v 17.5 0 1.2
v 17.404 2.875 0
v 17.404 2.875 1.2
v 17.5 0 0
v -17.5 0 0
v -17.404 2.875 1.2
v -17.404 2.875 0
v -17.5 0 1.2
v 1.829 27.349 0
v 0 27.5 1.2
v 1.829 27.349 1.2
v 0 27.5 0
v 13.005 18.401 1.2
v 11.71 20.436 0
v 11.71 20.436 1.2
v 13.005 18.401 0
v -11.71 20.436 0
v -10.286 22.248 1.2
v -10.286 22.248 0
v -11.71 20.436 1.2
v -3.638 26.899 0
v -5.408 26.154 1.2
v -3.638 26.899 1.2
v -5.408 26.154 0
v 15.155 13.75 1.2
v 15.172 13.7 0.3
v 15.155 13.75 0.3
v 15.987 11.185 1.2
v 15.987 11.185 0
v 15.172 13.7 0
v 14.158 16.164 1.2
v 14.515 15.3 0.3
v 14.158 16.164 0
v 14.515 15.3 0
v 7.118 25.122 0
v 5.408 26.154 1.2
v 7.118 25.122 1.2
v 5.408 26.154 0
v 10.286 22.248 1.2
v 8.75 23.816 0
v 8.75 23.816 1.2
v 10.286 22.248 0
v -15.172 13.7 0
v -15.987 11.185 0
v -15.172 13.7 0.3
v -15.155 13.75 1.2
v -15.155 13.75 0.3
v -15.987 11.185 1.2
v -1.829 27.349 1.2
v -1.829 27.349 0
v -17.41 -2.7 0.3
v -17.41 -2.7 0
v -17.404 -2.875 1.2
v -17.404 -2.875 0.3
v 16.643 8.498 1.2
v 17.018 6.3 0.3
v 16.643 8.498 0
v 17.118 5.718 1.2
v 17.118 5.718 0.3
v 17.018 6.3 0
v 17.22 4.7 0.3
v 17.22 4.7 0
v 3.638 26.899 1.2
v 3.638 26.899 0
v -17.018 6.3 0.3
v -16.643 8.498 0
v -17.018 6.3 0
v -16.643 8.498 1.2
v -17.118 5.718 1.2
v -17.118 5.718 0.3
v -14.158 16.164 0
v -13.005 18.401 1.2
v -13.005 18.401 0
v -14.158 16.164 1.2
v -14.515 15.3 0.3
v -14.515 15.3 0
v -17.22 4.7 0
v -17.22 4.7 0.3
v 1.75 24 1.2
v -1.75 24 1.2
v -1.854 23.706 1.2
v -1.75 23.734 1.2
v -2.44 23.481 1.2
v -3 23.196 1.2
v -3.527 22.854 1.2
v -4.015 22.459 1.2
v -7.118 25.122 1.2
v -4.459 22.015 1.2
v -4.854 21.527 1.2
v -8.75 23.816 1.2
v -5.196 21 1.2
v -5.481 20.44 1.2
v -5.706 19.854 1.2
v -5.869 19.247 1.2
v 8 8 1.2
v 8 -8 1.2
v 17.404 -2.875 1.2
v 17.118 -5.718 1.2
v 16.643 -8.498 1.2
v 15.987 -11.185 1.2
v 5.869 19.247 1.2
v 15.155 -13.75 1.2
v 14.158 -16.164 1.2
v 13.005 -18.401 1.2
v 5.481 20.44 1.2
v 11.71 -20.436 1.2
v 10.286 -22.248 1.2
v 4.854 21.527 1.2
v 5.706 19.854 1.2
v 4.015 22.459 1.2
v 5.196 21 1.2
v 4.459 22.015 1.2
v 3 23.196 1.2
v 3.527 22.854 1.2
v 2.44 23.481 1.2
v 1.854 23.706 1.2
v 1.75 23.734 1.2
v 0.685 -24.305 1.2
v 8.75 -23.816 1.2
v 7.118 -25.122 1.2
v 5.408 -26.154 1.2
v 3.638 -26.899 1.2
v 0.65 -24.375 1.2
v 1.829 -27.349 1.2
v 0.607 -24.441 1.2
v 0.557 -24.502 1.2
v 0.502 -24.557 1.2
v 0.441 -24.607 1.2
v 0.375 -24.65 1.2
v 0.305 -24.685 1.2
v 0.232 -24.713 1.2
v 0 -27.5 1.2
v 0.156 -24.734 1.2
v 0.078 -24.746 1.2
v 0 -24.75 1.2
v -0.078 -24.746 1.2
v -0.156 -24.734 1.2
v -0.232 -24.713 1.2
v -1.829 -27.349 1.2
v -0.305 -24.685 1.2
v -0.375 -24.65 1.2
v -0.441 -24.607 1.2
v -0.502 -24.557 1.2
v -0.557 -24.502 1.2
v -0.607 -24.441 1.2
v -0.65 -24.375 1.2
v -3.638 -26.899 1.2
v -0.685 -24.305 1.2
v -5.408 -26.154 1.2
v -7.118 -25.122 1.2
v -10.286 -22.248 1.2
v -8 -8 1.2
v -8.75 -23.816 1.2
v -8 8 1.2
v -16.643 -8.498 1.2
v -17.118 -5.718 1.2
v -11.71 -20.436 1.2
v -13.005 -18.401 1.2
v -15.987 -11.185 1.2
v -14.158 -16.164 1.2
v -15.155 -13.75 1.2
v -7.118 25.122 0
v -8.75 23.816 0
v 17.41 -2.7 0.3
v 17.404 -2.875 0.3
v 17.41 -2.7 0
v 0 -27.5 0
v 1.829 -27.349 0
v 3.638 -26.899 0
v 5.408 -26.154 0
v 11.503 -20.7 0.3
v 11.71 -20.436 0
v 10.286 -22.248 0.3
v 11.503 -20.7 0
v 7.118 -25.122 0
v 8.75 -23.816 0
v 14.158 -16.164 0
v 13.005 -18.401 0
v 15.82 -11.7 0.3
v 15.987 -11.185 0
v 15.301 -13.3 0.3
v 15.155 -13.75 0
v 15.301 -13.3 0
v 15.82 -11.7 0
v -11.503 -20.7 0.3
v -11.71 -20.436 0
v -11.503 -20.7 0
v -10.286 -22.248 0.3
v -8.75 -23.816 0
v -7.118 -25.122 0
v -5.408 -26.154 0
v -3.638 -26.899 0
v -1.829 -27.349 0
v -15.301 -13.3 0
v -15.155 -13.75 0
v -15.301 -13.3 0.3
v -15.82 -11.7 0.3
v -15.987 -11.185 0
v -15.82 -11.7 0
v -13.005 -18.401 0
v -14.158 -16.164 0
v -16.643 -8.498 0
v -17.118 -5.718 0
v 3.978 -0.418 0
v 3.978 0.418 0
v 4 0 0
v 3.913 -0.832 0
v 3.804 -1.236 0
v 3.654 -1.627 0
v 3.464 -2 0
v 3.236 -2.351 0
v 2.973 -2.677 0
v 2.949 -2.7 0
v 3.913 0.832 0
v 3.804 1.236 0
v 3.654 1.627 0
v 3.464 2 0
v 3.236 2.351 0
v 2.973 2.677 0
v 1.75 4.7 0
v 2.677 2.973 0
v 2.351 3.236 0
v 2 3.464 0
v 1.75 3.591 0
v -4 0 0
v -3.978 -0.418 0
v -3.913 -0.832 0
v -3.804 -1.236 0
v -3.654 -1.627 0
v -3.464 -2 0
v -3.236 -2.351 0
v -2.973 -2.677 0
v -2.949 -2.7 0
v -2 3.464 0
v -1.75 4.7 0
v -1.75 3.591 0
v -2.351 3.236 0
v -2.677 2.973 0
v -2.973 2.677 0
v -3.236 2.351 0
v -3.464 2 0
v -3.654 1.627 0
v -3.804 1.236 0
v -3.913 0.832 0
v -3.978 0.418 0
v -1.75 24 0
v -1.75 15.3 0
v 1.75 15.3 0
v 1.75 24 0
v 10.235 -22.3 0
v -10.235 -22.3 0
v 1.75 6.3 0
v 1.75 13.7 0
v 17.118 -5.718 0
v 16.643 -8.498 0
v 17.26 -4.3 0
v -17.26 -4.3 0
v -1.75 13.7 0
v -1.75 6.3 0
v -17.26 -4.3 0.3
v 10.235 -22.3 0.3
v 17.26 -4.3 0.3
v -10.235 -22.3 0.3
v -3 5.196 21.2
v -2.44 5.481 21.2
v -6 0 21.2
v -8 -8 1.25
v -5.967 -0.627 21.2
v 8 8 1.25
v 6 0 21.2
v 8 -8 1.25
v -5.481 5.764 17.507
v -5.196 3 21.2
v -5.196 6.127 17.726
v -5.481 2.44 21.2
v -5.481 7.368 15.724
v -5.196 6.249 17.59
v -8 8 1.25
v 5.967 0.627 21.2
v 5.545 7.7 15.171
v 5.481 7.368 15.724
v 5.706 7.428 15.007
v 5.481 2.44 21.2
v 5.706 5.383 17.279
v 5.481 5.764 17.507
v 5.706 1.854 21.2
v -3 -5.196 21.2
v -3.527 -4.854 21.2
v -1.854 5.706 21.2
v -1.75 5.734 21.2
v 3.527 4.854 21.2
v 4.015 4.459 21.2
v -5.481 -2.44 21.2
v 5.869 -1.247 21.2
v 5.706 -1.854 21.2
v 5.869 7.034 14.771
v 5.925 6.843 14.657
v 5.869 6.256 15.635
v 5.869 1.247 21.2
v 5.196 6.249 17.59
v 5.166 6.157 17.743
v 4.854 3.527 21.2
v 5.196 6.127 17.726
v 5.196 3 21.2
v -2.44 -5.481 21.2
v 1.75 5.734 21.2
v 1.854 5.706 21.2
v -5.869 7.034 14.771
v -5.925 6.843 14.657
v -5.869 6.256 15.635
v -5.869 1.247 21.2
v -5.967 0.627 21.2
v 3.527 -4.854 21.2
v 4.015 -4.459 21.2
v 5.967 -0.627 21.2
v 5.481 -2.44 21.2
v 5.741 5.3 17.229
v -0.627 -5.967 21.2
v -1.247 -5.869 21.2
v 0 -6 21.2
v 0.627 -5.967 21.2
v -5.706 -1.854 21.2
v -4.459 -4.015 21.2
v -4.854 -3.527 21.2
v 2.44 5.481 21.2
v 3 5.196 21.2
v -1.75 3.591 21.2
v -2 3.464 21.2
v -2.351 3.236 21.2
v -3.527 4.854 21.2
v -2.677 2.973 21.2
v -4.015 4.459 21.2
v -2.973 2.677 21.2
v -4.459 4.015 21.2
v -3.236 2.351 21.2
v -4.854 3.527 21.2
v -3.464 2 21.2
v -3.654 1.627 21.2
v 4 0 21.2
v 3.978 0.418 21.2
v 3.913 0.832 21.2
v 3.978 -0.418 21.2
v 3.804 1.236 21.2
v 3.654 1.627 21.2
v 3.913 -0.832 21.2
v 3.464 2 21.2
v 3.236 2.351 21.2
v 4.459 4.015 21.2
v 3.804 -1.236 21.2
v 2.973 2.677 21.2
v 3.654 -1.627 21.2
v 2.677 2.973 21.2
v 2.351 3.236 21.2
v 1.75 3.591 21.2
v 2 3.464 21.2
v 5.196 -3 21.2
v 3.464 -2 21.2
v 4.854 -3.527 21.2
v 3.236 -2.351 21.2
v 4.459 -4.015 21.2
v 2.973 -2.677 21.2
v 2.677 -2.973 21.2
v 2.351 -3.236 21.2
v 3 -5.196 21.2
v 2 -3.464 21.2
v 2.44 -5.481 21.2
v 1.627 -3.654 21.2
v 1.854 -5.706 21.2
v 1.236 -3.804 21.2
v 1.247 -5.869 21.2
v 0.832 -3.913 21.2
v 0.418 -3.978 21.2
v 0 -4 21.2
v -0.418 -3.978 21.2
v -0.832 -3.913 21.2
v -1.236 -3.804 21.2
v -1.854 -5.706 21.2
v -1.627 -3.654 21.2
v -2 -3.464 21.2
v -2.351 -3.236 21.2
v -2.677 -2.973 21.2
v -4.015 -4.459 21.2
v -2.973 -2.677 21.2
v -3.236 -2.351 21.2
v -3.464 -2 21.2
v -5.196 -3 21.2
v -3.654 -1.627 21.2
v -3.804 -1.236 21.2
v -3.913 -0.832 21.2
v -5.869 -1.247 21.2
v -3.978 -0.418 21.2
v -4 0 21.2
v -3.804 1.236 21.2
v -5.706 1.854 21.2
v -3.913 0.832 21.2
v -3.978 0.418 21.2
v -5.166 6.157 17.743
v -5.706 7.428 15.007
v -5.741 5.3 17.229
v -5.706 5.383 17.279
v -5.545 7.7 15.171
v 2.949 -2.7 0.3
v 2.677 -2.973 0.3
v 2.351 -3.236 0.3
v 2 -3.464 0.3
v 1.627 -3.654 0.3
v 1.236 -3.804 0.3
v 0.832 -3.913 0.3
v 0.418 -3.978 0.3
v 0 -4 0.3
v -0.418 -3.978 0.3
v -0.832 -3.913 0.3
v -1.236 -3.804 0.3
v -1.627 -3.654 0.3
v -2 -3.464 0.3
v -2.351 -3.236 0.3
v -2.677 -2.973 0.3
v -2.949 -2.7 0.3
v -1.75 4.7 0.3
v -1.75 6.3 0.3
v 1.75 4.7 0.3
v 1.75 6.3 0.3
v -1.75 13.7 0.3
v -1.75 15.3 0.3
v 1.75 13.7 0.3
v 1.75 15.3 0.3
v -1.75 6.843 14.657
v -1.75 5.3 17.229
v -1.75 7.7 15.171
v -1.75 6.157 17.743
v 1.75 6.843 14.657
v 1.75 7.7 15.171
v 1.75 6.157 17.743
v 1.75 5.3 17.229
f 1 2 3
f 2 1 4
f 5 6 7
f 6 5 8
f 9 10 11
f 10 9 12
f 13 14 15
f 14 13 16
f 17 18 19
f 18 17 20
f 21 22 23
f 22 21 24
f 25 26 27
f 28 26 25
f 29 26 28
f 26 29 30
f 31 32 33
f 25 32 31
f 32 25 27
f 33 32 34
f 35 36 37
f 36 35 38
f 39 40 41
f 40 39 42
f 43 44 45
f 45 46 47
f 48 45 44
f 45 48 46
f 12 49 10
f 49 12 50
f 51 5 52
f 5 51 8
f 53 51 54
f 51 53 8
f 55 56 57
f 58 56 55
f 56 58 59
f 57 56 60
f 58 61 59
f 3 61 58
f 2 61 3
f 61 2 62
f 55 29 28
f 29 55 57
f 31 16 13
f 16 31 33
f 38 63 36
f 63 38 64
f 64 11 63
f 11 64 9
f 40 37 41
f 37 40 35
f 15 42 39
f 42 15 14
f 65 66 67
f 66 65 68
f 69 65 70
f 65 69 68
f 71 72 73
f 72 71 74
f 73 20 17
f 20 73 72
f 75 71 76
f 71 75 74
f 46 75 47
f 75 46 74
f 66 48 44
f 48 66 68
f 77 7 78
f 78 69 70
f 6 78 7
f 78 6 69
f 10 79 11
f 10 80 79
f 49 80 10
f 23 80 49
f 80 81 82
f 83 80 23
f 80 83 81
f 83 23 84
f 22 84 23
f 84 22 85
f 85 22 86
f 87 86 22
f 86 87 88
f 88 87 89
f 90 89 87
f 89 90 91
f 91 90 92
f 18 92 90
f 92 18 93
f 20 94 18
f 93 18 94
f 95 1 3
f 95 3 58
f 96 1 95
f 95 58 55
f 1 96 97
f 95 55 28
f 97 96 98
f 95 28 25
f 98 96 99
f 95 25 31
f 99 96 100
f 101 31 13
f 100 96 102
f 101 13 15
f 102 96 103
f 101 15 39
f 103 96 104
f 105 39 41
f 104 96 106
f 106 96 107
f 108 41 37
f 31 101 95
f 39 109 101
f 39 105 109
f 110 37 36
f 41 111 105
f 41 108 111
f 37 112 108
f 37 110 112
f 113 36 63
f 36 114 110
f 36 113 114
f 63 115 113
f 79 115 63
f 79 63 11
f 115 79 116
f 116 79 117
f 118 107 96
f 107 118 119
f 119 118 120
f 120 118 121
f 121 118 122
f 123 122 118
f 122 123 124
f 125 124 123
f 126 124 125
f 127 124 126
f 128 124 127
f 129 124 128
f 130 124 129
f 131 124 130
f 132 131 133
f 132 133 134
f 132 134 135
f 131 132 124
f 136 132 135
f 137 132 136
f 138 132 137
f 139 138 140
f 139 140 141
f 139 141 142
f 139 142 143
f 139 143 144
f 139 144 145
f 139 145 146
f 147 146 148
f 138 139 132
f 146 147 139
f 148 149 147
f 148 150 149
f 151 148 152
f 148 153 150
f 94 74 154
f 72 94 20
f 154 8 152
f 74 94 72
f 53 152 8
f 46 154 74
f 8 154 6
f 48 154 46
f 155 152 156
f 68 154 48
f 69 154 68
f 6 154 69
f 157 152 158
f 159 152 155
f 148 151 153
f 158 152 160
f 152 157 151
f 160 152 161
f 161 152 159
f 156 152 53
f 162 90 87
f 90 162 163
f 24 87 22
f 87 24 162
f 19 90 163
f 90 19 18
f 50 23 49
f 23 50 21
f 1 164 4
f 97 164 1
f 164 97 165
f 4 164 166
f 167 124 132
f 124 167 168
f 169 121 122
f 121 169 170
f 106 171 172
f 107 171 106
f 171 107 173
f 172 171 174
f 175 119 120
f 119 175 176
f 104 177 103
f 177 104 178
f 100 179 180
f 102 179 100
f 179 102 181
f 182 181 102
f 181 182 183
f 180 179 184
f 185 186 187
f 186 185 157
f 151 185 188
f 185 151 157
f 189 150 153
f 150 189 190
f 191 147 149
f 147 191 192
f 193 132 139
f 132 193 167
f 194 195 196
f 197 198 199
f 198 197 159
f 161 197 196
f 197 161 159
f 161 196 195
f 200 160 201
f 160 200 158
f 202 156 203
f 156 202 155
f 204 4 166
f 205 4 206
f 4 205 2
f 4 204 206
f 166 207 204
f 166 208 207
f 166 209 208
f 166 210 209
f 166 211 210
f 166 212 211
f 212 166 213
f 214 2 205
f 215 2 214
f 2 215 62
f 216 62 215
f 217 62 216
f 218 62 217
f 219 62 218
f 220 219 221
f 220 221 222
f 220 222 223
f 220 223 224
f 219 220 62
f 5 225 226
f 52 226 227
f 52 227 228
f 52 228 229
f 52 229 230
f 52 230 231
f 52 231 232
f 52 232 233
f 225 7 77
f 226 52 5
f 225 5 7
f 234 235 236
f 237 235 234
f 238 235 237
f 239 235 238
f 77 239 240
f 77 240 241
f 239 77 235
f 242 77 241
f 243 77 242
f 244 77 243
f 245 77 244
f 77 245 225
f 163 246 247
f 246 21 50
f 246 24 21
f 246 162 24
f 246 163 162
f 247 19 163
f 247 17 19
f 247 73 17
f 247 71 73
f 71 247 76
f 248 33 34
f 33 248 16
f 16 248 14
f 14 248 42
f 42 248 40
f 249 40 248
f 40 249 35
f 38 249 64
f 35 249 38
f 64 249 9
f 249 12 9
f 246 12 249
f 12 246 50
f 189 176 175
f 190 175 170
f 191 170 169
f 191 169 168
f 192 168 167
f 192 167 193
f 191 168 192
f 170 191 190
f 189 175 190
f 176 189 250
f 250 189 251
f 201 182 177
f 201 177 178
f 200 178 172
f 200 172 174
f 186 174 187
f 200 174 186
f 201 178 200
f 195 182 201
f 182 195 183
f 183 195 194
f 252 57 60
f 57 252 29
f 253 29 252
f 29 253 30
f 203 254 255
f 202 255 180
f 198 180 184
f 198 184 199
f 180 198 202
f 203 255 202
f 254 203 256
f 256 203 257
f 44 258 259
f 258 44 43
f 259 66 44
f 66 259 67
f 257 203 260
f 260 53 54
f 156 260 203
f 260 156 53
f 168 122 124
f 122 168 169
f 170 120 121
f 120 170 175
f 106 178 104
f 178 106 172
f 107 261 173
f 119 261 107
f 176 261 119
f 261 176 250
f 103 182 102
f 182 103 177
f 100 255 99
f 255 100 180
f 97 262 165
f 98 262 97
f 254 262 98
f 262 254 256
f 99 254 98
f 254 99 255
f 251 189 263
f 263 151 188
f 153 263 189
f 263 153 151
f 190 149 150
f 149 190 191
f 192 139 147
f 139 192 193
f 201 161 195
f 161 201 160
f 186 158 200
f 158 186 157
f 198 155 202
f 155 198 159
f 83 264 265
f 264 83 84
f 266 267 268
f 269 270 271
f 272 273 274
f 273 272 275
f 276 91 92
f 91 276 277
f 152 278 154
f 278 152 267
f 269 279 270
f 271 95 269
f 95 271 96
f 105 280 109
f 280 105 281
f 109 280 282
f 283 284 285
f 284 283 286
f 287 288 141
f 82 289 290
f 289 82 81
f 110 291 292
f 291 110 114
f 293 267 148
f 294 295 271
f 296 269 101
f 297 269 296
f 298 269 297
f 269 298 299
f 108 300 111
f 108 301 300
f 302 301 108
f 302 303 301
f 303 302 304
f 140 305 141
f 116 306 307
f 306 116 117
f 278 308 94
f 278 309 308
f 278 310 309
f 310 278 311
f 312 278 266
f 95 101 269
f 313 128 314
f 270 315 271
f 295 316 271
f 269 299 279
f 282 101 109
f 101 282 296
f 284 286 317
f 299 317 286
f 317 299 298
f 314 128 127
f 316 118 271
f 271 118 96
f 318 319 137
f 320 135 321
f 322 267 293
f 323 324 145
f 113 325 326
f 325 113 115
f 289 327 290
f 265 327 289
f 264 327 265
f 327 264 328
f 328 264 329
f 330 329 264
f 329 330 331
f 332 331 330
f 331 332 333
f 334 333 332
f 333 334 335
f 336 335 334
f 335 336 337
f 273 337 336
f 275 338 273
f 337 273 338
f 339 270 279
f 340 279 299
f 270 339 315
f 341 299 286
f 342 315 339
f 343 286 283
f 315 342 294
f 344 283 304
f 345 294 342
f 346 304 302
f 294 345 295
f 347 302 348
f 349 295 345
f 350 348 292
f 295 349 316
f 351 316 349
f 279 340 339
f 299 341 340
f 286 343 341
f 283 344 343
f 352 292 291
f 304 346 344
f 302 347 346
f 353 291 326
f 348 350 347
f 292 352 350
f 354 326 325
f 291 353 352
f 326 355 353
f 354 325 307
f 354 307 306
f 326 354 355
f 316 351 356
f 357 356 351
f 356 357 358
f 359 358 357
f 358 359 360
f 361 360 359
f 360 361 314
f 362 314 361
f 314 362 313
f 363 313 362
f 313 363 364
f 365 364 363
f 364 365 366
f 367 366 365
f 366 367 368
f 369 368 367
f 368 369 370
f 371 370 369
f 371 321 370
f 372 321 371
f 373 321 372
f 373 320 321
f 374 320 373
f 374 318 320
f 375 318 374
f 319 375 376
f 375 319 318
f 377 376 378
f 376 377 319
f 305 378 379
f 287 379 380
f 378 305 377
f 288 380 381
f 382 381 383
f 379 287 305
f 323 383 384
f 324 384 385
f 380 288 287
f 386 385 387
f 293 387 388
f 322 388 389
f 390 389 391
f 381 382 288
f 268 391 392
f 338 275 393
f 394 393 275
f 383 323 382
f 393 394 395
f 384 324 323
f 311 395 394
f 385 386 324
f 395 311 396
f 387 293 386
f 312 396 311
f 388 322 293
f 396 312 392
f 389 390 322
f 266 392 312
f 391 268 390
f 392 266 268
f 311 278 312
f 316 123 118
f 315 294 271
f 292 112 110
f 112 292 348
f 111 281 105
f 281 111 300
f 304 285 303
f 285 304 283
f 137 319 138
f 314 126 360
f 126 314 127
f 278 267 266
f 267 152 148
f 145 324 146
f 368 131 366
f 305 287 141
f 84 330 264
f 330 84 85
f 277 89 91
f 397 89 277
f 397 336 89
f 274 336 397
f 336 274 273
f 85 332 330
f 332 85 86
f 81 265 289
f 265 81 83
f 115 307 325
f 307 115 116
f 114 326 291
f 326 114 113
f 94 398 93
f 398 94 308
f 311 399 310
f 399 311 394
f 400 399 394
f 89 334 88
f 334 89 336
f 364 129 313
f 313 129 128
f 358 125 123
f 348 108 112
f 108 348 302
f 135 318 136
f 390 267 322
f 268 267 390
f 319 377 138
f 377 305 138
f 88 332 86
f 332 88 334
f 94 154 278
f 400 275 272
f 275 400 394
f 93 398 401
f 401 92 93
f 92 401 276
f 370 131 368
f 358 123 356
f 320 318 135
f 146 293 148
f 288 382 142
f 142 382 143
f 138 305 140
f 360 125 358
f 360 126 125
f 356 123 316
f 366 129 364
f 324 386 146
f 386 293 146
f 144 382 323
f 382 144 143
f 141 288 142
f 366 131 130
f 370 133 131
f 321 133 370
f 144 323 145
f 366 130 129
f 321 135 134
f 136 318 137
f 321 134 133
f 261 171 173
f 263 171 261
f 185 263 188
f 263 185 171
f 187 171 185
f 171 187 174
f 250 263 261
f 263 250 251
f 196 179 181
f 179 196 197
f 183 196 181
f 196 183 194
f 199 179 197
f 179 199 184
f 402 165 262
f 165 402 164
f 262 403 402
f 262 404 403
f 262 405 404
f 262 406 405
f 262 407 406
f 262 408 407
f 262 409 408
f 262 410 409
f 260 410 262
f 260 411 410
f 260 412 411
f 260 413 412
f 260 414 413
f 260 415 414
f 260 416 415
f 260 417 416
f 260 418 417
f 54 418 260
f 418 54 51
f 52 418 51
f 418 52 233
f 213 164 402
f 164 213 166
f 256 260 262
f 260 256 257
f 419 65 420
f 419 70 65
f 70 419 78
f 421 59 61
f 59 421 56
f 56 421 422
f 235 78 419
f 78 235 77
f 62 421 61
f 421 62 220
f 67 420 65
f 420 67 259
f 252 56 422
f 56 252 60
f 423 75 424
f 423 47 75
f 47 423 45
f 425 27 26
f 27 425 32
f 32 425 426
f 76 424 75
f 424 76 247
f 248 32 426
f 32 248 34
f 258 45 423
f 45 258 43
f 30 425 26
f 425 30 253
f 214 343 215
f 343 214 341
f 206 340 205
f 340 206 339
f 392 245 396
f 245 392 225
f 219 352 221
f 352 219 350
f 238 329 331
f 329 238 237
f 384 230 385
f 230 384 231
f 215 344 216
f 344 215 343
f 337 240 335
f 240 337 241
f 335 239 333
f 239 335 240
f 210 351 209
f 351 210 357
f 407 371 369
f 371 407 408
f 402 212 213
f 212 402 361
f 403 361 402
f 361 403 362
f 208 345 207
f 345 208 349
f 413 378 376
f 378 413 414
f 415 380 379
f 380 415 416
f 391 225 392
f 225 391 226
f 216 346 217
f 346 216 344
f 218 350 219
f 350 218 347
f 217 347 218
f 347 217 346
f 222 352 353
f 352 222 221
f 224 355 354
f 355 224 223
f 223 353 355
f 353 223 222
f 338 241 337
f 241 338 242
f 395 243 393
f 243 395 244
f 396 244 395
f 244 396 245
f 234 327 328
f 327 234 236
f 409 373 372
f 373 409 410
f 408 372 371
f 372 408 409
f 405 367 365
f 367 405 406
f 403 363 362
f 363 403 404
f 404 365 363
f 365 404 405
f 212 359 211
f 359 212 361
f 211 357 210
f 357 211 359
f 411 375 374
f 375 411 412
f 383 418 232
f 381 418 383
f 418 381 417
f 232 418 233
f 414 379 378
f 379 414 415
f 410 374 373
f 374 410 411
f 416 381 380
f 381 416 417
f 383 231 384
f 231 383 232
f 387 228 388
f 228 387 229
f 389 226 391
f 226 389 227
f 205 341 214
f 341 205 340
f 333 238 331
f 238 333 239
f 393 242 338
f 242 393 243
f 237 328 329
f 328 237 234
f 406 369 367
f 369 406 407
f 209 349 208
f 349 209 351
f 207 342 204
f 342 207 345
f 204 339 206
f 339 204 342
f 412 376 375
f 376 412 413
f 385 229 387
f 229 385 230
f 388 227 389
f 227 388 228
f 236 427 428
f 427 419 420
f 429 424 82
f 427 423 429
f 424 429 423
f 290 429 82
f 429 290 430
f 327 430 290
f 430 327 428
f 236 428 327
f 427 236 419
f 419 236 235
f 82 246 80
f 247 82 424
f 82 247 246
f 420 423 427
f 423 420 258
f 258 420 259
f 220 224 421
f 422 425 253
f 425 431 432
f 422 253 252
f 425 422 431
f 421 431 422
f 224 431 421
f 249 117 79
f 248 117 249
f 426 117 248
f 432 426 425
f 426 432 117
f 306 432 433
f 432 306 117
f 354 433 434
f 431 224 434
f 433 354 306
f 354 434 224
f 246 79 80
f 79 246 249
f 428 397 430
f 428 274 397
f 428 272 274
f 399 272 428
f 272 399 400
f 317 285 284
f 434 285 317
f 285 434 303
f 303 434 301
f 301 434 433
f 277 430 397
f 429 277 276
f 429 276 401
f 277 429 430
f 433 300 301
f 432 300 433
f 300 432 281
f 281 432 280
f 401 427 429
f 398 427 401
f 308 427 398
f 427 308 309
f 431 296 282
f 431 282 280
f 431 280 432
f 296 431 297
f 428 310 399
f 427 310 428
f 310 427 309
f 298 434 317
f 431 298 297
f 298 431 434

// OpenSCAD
// =============================================================================
// PROJECT: FIXED-WING "HIGH-PINCH" TOWER 
// VERSION: 1.9.1 (Subtractive Bottom Treads)
// DESCRIPTION: Slots are now moved to the main difference block for 
//              guaranteed rendering on the bottom face.
// =============================================================================

/* [1. BASE PLATE SETTINGS] */
base_w          = 35.0;  
base_l          = 55.0;  
base_thick      = 1.2;   
slot_width      = 1.6;   
slot_depth      = 0.6; // 50% depth is ideal for flexibility

/* [2. TOWER GEOMETRY] */
tower_h         = 20.0;  
sma_hole_dia    = 8;   
cable_slot_w    = 3.5;
wall_thickness  = 2.0;   
leading_edge_dist = 24.0; 

/* [3. RETENTION] */
ziptie_width    = 3.;
ziptie_thick    = 1.;
ziptie_drop     = 5.0; 
ziptie_forward_shift = 0.5;

/* [4. INTERNAL CALCULATIONS] */
$fn = 60;
tower_dia = sma_hole_dia + (wall_thickness * 2);
spine_run   = (tower_dia * 1.5) - (tower_dia / 2);
spine_angle = atan2(spine_run, tower_h);

// =============================================================================
// MAIN ASSEMBLY
// =============================================================================

difference() {
    // --- STEP 1: THE SOLID BODY ---
    union() {
        // A. THE ELLIPTICAL BASE PLATE
        scale([base_w / base_l, 1, 1])
            cylinder(h=base_thick, d=base_l);
        
        // B. THE AERO-TOWER
        hull() {
            cylinder(h=tower_h + base_thick, d=tower_dia);
            
            // Leading Edge
            translate([0, -leading_edge_dist, 0])
                cylinder(h=base_thick, d=1.5); 
            
            // Trailing Spine
            translate([0, tower_dia * 1.5, 0])
                cylinder(h=base_thick, d=tower_dia);

            // Base Reinforcement
            translate([0, 0, base_thick])
                cube([tower_dia + 4, tower_dia + 4, 0.1], center=true);
        }
    }

    // --- STEP 2: THE SUBTRACTIONS (Now all in one block) ---

    // A. BOTTOM-FACE FLEX RELIEF SLOTS
    // Moved here to ensure they are subtracted from the unioned body
    for(i = [-base_l/2 + 6 : 9 : base_l/2 - 6]) {
        translate([0, i, -0.05]) // Slight offset into the "ground"
            cube([base_w + 5, slot_width, slot_depth + 0.1], center=true);
    }

    // B. THE SMA BORE
    translate([0, 0, -1])
        cylinder(h=tower_h + base_thick + 5, d=sma_hole_dia);

    // C. THE REAR LOADING SLOT
    translate([0, tower_dia, (tower_h + base_thick)/2])
        cube([cable_slot_w, tower_dia * 2, tower_h + base_thick + 10], center=true);

    // D. THE HIGH-POSITIONED ZIP-TIE TRENCH
    translate([0, (tower_dia/2) + ziptie_forward_shift, tower_h + base_thick - ziptie_drop])
        rotate([spine_angle, 0, 0]) 
            cube([tower_dia + 10, ziptie_thick, ziptie_width], center=true);

    // E. BOTTOM CABLE PORT
    translate([0, 0, -1])
        cylinder(h=base_thick + 5, d=sma_hole_dia);
}
